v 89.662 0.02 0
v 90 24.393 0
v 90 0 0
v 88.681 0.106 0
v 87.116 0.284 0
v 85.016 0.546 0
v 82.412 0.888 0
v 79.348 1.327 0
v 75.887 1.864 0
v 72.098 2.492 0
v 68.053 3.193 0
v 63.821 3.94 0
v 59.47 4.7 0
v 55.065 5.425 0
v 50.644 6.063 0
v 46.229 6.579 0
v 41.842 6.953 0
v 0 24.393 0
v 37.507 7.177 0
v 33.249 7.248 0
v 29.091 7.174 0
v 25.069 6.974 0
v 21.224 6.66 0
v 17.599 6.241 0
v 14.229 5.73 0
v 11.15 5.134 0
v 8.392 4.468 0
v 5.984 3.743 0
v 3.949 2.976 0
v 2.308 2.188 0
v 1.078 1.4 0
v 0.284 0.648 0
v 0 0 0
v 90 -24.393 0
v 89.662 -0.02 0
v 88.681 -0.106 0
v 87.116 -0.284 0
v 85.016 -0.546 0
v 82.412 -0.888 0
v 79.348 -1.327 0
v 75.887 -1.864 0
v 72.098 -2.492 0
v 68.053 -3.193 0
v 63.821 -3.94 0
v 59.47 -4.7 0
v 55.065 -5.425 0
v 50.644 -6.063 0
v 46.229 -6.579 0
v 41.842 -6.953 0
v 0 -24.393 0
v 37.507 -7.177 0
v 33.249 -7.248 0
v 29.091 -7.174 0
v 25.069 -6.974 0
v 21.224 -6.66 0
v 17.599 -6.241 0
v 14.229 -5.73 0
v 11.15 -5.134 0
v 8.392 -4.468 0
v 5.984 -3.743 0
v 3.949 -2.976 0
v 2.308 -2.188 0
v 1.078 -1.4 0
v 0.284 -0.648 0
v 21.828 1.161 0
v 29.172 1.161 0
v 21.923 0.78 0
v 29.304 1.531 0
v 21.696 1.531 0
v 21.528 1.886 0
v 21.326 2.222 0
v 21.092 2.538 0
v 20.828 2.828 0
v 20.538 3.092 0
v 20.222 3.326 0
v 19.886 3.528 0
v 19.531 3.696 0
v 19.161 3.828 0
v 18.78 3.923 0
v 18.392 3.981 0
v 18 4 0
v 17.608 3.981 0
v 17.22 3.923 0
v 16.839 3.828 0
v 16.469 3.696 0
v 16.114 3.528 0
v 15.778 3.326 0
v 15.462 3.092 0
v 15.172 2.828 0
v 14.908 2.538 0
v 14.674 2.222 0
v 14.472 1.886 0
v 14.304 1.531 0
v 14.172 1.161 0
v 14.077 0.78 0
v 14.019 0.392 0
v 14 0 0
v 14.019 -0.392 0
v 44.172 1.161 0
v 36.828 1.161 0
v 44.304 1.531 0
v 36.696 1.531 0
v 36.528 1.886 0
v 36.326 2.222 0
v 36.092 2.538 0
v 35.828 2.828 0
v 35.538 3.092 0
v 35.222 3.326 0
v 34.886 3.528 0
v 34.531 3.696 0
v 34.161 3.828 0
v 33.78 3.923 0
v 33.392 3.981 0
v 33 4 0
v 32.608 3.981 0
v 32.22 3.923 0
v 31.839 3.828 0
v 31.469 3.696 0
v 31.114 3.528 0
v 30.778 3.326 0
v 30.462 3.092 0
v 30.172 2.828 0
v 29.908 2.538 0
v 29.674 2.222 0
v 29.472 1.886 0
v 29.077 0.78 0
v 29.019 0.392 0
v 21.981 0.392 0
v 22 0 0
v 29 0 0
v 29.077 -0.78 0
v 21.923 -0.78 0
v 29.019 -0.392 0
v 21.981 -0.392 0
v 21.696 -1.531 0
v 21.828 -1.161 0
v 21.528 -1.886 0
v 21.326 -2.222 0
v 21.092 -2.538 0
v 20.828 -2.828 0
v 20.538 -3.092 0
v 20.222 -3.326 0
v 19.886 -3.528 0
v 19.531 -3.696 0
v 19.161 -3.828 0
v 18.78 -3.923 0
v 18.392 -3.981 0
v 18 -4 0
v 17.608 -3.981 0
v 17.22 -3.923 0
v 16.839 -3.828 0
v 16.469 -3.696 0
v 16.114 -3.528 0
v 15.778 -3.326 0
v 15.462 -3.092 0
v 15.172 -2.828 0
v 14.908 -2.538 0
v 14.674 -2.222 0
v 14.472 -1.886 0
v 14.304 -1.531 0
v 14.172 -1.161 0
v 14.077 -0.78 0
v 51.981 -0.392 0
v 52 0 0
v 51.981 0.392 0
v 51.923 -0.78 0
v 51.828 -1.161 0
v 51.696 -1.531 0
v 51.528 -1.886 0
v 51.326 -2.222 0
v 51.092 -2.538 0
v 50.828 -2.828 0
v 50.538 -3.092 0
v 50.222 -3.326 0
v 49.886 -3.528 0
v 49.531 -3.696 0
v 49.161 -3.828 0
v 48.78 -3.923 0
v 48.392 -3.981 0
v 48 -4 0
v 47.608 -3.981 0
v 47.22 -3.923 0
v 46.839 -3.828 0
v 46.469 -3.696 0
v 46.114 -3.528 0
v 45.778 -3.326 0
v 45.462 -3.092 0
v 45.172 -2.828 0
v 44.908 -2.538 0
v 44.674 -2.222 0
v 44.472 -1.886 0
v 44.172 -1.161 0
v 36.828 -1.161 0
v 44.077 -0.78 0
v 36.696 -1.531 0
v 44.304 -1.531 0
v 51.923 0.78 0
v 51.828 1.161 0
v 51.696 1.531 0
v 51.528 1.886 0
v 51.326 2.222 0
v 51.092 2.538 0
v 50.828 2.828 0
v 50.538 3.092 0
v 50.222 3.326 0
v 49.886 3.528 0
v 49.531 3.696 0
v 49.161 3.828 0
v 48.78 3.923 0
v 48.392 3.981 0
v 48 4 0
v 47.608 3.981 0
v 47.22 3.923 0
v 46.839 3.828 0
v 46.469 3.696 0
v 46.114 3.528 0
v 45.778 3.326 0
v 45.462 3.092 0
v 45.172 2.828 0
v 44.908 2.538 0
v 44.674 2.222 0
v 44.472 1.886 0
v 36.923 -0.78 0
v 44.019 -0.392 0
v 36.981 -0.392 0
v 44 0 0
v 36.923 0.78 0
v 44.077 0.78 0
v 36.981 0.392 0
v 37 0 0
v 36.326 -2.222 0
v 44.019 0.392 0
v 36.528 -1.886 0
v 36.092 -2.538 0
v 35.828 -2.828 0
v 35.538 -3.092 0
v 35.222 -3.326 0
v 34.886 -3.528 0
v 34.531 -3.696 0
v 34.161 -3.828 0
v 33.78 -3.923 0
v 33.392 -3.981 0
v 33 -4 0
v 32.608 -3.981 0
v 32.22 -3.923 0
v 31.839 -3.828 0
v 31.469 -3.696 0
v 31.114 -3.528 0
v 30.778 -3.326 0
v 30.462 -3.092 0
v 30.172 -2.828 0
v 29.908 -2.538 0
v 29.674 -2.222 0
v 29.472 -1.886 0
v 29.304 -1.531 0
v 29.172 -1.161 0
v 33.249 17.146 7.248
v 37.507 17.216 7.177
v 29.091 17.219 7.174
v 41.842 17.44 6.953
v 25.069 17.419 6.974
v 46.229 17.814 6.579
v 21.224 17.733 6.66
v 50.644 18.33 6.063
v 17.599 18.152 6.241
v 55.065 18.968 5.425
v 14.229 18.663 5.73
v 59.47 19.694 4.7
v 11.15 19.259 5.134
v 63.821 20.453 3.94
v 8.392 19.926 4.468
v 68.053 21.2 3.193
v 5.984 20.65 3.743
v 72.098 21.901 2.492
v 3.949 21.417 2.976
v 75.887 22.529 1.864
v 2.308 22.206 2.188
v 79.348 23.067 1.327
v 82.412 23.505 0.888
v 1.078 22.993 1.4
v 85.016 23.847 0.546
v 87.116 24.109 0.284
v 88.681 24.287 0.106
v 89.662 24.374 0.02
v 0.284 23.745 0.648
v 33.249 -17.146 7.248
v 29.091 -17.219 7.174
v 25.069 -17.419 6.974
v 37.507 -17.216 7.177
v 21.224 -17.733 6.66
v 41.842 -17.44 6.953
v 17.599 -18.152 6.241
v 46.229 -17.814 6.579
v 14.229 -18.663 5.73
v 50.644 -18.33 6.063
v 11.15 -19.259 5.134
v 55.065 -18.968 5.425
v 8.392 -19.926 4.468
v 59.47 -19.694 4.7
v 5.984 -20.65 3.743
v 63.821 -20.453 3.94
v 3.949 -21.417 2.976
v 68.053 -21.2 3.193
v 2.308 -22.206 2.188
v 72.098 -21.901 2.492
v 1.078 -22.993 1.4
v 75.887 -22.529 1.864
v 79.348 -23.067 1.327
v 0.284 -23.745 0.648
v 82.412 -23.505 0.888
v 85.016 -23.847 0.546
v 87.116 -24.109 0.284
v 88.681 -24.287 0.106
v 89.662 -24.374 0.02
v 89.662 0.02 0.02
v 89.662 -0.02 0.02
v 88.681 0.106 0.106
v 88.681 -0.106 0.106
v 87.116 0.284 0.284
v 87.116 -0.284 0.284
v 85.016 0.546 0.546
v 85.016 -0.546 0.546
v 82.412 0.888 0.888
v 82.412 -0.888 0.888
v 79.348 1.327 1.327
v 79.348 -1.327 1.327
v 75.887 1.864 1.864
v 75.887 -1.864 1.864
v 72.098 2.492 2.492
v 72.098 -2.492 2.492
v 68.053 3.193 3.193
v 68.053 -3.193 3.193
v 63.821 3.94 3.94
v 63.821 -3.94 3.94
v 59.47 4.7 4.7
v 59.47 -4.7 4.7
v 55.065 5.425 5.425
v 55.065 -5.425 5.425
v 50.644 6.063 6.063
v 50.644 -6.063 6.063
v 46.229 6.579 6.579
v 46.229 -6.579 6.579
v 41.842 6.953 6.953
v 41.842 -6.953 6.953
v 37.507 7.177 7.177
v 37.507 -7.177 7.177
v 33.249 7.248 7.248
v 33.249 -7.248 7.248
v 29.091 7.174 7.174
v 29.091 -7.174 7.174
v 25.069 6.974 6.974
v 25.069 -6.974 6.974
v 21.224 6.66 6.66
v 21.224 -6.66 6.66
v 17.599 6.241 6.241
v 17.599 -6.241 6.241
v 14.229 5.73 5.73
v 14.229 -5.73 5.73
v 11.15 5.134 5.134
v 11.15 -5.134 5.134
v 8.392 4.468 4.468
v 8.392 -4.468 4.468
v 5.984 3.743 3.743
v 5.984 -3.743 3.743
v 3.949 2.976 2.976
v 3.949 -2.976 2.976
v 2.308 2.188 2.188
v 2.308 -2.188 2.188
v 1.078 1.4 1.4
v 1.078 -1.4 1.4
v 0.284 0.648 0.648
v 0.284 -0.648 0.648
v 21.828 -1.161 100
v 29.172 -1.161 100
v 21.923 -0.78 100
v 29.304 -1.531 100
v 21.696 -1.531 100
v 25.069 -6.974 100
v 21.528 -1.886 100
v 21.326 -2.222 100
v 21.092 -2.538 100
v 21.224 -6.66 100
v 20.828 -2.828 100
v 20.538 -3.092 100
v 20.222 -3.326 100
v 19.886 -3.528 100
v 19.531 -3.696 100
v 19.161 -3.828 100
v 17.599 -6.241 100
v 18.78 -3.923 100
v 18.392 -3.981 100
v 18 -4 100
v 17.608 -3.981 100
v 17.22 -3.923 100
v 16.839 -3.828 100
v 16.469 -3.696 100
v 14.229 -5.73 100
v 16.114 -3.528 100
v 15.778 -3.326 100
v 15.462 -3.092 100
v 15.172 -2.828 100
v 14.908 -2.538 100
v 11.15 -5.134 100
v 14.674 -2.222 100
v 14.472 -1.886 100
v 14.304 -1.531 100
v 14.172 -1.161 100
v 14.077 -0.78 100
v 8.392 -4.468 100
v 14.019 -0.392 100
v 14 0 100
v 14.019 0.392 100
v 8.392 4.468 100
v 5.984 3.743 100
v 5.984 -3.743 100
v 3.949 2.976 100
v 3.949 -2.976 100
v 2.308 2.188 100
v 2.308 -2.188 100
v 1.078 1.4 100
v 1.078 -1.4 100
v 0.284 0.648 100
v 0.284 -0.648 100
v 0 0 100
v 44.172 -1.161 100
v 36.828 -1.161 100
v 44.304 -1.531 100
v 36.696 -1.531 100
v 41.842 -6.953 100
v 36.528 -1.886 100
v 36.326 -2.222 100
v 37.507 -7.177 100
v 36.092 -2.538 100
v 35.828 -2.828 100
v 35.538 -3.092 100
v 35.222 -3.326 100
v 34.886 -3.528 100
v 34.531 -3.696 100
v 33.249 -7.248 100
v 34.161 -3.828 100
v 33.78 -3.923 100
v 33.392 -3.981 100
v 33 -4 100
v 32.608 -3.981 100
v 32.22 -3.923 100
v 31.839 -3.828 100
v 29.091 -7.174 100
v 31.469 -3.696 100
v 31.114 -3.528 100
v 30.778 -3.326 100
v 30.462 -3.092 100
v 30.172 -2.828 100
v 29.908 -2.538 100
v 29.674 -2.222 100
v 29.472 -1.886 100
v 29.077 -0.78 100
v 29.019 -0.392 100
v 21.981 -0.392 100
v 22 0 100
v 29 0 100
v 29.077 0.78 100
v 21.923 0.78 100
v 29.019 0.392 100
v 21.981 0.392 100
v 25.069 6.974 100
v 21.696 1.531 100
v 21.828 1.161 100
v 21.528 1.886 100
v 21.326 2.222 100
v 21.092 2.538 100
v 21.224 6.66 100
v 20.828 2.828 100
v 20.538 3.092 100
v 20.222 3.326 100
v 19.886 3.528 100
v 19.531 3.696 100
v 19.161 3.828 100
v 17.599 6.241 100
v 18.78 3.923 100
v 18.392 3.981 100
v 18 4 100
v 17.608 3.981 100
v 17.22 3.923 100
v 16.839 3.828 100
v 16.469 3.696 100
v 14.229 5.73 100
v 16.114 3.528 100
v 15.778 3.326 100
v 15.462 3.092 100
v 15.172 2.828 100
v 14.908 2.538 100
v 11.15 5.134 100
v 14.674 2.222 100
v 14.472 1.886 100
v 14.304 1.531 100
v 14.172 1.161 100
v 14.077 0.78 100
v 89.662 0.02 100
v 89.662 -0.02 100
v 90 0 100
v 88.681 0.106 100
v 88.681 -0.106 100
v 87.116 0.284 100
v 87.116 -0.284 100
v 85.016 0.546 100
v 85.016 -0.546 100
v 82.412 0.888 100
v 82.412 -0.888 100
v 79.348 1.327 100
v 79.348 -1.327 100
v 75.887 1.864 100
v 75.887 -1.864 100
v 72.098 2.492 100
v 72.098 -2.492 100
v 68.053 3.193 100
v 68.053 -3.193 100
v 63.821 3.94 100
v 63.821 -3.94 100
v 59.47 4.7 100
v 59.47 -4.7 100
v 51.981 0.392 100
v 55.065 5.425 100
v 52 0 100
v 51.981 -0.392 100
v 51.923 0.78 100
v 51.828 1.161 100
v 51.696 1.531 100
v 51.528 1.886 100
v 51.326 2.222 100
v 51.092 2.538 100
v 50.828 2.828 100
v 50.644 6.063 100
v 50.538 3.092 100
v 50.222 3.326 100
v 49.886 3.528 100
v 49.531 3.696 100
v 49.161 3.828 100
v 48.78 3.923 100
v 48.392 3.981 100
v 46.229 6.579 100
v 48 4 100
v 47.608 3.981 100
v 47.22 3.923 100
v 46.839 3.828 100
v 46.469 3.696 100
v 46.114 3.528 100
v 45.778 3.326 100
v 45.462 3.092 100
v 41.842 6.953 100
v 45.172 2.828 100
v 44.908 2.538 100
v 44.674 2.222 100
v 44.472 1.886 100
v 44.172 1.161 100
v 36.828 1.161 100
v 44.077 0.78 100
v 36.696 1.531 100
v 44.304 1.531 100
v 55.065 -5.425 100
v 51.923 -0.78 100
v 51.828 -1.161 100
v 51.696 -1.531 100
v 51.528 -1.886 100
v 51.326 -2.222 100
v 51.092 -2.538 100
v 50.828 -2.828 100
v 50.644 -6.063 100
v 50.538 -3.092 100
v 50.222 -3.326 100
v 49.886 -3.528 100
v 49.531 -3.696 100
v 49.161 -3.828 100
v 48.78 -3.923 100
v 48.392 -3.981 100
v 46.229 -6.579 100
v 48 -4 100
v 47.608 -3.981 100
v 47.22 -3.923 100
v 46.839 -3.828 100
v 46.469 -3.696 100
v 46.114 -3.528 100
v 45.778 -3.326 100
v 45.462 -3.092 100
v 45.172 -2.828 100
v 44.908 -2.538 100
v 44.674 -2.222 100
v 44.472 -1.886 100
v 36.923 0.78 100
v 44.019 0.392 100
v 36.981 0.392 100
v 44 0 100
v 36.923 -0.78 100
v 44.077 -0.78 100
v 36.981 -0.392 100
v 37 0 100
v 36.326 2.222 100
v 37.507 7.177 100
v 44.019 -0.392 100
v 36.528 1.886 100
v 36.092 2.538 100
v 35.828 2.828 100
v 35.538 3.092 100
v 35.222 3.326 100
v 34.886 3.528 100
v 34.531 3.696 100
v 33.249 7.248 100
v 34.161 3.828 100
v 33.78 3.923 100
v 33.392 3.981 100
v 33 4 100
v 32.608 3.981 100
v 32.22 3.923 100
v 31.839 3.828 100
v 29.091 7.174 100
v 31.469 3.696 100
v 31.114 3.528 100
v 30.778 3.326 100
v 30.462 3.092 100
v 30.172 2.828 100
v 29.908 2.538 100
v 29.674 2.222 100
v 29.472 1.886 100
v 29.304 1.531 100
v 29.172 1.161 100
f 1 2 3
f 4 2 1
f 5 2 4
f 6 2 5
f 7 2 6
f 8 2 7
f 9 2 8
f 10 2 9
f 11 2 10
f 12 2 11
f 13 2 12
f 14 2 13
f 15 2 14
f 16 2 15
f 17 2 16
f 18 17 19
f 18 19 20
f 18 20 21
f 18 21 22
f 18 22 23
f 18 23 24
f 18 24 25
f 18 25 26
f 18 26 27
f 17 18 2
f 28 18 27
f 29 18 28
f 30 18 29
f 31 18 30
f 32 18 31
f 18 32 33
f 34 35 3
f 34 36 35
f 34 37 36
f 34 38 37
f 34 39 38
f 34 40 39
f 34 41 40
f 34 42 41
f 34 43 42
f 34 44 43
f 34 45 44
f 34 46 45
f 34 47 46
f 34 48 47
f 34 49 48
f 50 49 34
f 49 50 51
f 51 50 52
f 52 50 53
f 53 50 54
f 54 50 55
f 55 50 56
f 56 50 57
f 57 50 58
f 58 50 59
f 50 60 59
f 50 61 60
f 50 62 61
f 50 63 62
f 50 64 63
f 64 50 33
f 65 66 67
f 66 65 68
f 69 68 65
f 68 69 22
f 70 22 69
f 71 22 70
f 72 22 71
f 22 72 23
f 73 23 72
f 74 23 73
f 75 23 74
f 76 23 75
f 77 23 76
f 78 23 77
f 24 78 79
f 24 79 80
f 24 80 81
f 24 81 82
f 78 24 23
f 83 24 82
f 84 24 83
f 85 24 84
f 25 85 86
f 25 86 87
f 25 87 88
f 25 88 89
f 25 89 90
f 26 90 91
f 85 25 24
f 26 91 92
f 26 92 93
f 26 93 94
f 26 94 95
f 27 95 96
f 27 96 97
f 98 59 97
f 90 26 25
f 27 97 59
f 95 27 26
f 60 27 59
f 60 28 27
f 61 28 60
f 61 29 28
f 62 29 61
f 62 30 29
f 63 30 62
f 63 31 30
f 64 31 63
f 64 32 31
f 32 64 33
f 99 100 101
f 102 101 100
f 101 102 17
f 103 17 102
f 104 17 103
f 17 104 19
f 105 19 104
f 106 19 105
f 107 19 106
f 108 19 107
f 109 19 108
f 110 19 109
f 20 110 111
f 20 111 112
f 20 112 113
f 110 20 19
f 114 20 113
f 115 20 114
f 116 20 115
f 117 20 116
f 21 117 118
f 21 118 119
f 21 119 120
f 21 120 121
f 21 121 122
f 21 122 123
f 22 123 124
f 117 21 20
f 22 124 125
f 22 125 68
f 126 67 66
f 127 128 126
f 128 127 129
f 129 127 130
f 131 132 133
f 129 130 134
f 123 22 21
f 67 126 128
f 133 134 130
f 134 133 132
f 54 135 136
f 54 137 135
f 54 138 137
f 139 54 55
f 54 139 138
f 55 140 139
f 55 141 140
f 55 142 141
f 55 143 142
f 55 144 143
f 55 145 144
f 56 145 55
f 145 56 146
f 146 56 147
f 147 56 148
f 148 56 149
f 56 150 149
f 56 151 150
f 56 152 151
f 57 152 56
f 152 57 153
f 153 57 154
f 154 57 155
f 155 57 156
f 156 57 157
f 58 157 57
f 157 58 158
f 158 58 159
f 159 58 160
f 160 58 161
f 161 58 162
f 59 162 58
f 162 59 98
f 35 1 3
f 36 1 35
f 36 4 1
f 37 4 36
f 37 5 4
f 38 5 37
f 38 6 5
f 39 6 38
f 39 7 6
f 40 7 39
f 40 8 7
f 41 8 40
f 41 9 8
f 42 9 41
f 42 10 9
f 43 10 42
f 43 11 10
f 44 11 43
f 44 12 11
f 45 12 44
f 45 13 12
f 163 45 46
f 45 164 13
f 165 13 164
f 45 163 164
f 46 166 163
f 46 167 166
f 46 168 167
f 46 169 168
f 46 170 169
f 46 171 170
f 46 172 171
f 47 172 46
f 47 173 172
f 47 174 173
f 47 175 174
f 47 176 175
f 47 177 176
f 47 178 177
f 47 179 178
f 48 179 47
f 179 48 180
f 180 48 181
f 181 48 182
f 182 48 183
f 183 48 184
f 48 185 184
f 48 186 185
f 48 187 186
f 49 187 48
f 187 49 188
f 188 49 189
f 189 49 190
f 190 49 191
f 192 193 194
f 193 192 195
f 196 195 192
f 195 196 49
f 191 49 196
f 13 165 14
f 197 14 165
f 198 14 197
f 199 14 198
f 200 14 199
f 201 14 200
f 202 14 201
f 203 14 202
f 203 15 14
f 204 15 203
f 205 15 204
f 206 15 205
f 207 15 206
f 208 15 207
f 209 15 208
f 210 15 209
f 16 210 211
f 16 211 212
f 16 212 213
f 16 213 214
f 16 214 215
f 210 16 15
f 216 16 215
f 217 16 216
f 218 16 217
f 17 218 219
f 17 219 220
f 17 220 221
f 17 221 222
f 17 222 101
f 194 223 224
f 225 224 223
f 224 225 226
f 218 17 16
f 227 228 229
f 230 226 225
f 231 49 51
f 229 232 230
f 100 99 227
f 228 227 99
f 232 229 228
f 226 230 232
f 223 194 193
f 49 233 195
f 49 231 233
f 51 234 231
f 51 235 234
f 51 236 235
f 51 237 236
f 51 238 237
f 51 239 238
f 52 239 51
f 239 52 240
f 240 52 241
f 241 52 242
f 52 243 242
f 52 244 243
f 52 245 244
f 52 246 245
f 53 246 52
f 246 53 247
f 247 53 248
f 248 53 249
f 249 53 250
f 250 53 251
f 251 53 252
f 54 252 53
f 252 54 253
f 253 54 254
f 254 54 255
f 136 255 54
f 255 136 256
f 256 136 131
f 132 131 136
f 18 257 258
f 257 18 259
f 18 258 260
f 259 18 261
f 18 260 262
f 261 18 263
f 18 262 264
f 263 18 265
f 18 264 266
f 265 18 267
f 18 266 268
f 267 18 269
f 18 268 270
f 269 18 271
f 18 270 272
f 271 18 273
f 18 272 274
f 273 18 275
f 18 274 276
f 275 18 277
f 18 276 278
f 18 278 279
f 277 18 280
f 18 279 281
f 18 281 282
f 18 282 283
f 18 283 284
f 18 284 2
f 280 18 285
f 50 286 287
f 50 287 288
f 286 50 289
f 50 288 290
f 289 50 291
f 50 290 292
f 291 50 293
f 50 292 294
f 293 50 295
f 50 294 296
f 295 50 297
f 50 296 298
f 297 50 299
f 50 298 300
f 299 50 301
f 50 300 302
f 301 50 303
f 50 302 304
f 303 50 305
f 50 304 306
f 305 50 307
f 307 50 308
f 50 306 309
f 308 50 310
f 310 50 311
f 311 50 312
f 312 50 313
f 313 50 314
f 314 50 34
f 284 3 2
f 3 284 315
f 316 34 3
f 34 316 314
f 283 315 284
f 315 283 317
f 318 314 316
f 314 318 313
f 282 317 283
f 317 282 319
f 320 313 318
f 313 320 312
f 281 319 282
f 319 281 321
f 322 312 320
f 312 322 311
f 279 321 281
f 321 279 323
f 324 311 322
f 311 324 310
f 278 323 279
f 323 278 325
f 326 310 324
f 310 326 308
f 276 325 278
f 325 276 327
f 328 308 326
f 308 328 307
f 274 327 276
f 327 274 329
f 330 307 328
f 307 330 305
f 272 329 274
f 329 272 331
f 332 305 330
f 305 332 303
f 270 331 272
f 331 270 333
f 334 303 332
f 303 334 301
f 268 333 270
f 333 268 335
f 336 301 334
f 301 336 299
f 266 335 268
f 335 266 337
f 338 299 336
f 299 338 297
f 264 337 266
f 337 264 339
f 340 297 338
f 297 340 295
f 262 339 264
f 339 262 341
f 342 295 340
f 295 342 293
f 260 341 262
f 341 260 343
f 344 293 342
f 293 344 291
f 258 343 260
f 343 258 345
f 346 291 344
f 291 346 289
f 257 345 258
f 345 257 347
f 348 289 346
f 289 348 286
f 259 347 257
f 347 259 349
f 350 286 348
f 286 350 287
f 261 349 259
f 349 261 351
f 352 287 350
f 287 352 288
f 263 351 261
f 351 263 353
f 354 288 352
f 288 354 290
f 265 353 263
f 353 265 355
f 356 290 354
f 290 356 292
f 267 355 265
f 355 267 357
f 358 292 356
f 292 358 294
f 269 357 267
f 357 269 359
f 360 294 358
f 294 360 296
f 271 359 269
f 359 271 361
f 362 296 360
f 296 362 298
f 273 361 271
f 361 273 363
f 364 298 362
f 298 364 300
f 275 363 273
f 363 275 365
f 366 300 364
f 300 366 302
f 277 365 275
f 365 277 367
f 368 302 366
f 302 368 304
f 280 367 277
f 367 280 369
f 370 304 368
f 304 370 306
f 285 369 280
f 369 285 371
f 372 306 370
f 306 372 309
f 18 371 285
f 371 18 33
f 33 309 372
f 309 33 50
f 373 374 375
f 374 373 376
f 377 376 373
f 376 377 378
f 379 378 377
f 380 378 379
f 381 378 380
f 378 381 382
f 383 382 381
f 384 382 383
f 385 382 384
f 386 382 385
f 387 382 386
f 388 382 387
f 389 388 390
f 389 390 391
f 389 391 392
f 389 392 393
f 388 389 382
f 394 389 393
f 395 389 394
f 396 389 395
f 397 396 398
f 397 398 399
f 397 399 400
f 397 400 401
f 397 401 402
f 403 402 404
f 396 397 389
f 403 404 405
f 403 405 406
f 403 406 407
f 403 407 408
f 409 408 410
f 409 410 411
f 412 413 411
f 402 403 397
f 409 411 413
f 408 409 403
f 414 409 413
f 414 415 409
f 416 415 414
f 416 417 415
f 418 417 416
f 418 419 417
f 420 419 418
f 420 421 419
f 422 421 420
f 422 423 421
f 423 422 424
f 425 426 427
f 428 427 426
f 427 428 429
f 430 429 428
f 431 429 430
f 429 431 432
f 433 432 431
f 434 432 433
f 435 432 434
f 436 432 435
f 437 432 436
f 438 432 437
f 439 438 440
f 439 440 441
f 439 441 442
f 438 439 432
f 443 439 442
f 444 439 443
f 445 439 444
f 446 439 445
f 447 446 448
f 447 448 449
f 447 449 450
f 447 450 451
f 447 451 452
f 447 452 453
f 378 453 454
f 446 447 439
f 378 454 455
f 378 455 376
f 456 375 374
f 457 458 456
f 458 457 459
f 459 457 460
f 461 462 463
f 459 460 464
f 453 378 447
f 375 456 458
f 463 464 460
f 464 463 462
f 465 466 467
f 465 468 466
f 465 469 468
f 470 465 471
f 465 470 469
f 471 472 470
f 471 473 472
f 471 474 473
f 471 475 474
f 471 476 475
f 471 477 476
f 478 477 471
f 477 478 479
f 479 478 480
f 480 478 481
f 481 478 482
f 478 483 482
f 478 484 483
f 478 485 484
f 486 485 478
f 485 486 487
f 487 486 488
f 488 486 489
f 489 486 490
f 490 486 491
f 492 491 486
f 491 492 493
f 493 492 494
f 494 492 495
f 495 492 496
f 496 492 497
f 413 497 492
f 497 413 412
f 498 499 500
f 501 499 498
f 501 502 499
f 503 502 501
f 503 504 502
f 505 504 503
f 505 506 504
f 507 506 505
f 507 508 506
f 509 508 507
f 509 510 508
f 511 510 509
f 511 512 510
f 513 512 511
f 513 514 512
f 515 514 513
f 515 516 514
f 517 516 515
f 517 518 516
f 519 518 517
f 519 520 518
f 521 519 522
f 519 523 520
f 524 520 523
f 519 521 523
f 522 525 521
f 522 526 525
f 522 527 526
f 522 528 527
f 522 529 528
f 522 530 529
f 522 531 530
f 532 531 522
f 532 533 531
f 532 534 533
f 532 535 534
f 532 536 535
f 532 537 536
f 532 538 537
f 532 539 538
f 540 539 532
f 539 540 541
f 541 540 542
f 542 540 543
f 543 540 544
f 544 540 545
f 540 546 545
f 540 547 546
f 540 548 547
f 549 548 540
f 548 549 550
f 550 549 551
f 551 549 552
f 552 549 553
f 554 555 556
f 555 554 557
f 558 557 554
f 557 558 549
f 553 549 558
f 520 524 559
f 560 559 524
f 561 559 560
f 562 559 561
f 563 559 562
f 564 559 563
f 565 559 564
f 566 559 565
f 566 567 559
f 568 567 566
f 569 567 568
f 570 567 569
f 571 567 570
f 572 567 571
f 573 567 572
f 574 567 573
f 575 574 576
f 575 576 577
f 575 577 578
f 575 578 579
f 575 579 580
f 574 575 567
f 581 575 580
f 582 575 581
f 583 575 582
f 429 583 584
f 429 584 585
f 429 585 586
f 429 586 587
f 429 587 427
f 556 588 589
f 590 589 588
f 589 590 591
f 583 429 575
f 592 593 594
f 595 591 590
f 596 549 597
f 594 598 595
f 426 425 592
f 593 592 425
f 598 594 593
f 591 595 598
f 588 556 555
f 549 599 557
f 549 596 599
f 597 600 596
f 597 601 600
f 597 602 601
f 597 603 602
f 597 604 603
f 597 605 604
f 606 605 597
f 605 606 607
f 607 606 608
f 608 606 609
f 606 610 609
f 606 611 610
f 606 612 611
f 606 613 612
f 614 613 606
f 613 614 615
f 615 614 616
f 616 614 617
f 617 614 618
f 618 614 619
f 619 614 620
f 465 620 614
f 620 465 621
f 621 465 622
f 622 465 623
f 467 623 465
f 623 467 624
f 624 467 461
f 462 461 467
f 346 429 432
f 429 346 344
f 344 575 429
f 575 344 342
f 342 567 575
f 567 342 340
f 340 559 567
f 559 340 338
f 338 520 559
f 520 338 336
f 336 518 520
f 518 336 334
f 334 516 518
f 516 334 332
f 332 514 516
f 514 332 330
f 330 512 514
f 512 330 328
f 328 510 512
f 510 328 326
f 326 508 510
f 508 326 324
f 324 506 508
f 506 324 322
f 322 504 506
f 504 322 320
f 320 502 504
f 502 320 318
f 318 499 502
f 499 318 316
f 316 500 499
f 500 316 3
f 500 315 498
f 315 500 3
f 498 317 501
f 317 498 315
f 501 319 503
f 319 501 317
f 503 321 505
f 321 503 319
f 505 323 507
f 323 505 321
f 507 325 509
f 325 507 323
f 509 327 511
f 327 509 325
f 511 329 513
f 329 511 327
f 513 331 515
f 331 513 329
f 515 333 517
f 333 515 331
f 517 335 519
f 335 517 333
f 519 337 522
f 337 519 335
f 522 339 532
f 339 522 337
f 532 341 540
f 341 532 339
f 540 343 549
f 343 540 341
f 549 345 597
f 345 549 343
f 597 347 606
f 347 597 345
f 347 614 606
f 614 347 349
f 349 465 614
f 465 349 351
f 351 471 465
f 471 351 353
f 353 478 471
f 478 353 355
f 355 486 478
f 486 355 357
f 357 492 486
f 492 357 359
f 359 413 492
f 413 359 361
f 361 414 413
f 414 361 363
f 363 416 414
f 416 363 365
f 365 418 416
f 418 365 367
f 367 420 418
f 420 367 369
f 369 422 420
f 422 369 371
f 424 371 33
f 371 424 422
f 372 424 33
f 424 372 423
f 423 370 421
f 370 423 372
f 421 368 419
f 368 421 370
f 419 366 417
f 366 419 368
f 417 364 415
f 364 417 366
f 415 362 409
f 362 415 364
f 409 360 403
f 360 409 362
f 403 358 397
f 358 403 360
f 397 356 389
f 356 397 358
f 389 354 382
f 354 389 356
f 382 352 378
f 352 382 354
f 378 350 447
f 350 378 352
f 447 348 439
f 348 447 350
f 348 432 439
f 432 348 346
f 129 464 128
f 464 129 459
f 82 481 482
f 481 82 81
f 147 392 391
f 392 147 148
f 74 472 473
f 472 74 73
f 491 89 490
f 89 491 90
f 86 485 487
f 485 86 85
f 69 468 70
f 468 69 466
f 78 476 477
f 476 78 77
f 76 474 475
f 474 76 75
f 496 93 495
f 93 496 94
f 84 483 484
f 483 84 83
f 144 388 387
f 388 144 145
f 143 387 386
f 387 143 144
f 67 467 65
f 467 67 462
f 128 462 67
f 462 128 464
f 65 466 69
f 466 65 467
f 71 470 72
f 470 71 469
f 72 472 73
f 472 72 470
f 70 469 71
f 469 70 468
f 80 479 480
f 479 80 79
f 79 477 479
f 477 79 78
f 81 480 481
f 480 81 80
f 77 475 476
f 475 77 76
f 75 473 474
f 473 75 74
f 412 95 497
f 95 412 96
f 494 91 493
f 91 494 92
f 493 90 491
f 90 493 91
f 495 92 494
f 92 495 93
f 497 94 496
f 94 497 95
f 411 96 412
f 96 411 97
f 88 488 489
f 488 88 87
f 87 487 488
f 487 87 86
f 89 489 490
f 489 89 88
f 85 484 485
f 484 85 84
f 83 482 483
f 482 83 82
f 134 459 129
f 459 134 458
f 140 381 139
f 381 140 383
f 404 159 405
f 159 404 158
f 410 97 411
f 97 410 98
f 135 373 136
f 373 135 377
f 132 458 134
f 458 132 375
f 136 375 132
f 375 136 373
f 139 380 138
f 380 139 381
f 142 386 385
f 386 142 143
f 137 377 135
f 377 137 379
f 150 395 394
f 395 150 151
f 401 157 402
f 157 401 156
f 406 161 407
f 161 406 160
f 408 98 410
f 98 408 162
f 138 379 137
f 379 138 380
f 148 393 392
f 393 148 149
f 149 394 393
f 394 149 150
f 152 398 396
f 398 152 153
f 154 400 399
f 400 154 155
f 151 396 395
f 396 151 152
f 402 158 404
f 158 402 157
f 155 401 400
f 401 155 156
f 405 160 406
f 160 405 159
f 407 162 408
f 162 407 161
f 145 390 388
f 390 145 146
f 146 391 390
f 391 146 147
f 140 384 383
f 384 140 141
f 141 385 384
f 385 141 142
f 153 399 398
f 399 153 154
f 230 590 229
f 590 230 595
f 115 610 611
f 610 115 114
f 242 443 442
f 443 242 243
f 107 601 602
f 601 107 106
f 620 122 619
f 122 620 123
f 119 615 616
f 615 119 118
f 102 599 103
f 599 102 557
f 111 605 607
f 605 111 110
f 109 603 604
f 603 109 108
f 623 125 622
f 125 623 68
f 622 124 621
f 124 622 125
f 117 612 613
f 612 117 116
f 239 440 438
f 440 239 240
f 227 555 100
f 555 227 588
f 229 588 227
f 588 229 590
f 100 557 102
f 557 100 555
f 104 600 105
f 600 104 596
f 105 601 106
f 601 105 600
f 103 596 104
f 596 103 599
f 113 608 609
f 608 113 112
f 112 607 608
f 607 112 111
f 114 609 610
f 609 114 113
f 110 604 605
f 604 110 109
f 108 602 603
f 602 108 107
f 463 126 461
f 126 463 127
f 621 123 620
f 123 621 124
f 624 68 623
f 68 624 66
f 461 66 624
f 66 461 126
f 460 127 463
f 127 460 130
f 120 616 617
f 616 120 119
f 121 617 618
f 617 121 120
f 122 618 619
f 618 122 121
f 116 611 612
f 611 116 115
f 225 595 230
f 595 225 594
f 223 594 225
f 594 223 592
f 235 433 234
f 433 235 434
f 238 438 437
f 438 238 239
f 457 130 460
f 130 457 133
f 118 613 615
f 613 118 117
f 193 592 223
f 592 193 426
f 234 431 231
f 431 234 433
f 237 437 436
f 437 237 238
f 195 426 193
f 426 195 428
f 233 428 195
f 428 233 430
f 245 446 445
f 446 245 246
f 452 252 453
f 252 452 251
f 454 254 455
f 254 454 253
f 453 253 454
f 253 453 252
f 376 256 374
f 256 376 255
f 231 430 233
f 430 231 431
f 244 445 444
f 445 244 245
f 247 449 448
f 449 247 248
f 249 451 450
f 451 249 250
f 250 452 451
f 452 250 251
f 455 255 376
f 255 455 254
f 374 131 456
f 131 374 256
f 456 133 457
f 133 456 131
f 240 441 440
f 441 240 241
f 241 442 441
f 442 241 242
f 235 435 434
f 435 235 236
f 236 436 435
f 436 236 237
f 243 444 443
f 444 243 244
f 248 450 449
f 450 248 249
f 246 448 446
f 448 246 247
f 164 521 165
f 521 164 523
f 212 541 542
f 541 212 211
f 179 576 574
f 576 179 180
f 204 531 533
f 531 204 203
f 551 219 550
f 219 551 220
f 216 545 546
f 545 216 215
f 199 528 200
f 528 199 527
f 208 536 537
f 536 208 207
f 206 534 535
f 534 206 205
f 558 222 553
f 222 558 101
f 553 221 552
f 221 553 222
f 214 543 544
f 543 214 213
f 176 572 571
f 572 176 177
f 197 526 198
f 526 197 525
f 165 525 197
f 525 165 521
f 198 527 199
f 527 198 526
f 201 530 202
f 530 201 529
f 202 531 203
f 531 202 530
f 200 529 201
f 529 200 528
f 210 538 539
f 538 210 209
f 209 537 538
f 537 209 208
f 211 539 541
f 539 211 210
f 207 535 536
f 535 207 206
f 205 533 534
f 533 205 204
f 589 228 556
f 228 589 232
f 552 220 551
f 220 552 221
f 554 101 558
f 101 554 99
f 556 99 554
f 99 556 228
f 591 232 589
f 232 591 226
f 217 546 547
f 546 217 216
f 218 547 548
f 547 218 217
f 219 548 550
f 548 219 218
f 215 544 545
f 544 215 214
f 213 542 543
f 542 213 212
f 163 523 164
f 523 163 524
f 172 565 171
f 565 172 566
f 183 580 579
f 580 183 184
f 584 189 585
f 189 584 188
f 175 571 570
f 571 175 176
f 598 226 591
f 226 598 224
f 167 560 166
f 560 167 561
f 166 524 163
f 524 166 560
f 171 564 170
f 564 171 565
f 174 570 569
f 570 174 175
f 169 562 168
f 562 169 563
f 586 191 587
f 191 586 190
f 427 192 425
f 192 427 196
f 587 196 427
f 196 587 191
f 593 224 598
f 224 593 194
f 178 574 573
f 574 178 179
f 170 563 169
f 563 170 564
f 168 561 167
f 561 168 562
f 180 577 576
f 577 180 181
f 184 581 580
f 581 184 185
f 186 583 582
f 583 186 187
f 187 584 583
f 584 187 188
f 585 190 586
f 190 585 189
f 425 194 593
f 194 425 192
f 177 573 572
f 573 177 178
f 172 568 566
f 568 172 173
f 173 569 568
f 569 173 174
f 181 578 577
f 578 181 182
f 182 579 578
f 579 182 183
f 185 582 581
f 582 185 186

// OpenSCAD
$fn=64;
peiceHeight = 100;
peiceLength = 50;

holeSize = 4;
holeSpacing = 15;
holeOffset = 18;
numHoles = 3;

// points for naca fin taken from here:
/// http://chaaawa.com/airfoils/export.cgi?f=e837
e837_points = [[1000,0],[996.25,0.22],[985.3399,1.18],[967.95,3.16],[944.62,6.07],[915.69,9.87],[881.64,14.74],[843.19,20.71],[801.09,27.69],[756.15,35.48],[709.12,43.78],[660.78,52.22],[611.83,60.28],[562.71,67.37],[513.65,73.1],[464.91,77.26],[416.74,79.75],[369.43,80.53],[323.23,79.71],[278.54,77.49],[235.82,74],[195.54,69.35],[158.1,63.67],[123.89,57.05],[93.25,49.6399],[66.4899,41.59],[43.88,33.07],[25.64,24.3099],[11.98,15.56],[3.16,7.2],[0,0],[3.16,-7.2],[11.98,-15.56],[25.64,-24.31],[43.88,-33.07],[66.4899,-41.59],[93.25,-49.64],[123.89,-57.05],[158.1,-63.67],[195.54,-69.35],[235.82,-74],[278.54,-77.49],[323.23,-79.71],[369.43,-80.53],[416.74,-79.75],[464.91,-77.26],[513.65,-73.1],[562.71,-67.37],[611.83,-60.28],[660.78,-52.22],[709.12,-43.78],[756.15,-35.48],[801.09,-27.69],[843.19,-20.71],[881.64,-14.74],[915.69,-9.87],[944.62,-6.07],[967.95,-3.16],[985.3399,-1.18],[996.25,-0.22]];

difference() {   
   union()
   { 
        linear_extrude(height=peiceHeight)
        scale([peiceLength, peiceLength])
        scale (0.0018)
        polygon(points=e837_points);
        
        difference()
        {
            rotate([90, 0, 0])
            translate([0, 0, -peiceHeight/4])
            linear_extrude(height=peiceHeight/2)
            scale([peiceLength, peiceLength])
            scale (0.0018)
            polygon(points=e837_points);
            
            union()
            {
                translate([0, -peiceHeight/4, -10])
                cube([peiceHeight, peiceLength, 10]);
                
                translate([50, peiceHeight/4, 10])
                rotate([45, 0, 0])
                cube([100, 15, 15], center = true);

                mirror(v=[0, 1, 0])
                translate([50, peiceHeight/4, 10])
                rotate([45, 0, 0])
                cube([100, 15, 15], center = true);
            }
        }
    }
    
// Create cuts for support to go through.
    for(i = [0 : numHoles -1])
    {
        translate([holeOffset + holeSpacing * i, 0,0])
        cylinder(h= peiceHeight + 1 , r = holeSize);
    }
}
